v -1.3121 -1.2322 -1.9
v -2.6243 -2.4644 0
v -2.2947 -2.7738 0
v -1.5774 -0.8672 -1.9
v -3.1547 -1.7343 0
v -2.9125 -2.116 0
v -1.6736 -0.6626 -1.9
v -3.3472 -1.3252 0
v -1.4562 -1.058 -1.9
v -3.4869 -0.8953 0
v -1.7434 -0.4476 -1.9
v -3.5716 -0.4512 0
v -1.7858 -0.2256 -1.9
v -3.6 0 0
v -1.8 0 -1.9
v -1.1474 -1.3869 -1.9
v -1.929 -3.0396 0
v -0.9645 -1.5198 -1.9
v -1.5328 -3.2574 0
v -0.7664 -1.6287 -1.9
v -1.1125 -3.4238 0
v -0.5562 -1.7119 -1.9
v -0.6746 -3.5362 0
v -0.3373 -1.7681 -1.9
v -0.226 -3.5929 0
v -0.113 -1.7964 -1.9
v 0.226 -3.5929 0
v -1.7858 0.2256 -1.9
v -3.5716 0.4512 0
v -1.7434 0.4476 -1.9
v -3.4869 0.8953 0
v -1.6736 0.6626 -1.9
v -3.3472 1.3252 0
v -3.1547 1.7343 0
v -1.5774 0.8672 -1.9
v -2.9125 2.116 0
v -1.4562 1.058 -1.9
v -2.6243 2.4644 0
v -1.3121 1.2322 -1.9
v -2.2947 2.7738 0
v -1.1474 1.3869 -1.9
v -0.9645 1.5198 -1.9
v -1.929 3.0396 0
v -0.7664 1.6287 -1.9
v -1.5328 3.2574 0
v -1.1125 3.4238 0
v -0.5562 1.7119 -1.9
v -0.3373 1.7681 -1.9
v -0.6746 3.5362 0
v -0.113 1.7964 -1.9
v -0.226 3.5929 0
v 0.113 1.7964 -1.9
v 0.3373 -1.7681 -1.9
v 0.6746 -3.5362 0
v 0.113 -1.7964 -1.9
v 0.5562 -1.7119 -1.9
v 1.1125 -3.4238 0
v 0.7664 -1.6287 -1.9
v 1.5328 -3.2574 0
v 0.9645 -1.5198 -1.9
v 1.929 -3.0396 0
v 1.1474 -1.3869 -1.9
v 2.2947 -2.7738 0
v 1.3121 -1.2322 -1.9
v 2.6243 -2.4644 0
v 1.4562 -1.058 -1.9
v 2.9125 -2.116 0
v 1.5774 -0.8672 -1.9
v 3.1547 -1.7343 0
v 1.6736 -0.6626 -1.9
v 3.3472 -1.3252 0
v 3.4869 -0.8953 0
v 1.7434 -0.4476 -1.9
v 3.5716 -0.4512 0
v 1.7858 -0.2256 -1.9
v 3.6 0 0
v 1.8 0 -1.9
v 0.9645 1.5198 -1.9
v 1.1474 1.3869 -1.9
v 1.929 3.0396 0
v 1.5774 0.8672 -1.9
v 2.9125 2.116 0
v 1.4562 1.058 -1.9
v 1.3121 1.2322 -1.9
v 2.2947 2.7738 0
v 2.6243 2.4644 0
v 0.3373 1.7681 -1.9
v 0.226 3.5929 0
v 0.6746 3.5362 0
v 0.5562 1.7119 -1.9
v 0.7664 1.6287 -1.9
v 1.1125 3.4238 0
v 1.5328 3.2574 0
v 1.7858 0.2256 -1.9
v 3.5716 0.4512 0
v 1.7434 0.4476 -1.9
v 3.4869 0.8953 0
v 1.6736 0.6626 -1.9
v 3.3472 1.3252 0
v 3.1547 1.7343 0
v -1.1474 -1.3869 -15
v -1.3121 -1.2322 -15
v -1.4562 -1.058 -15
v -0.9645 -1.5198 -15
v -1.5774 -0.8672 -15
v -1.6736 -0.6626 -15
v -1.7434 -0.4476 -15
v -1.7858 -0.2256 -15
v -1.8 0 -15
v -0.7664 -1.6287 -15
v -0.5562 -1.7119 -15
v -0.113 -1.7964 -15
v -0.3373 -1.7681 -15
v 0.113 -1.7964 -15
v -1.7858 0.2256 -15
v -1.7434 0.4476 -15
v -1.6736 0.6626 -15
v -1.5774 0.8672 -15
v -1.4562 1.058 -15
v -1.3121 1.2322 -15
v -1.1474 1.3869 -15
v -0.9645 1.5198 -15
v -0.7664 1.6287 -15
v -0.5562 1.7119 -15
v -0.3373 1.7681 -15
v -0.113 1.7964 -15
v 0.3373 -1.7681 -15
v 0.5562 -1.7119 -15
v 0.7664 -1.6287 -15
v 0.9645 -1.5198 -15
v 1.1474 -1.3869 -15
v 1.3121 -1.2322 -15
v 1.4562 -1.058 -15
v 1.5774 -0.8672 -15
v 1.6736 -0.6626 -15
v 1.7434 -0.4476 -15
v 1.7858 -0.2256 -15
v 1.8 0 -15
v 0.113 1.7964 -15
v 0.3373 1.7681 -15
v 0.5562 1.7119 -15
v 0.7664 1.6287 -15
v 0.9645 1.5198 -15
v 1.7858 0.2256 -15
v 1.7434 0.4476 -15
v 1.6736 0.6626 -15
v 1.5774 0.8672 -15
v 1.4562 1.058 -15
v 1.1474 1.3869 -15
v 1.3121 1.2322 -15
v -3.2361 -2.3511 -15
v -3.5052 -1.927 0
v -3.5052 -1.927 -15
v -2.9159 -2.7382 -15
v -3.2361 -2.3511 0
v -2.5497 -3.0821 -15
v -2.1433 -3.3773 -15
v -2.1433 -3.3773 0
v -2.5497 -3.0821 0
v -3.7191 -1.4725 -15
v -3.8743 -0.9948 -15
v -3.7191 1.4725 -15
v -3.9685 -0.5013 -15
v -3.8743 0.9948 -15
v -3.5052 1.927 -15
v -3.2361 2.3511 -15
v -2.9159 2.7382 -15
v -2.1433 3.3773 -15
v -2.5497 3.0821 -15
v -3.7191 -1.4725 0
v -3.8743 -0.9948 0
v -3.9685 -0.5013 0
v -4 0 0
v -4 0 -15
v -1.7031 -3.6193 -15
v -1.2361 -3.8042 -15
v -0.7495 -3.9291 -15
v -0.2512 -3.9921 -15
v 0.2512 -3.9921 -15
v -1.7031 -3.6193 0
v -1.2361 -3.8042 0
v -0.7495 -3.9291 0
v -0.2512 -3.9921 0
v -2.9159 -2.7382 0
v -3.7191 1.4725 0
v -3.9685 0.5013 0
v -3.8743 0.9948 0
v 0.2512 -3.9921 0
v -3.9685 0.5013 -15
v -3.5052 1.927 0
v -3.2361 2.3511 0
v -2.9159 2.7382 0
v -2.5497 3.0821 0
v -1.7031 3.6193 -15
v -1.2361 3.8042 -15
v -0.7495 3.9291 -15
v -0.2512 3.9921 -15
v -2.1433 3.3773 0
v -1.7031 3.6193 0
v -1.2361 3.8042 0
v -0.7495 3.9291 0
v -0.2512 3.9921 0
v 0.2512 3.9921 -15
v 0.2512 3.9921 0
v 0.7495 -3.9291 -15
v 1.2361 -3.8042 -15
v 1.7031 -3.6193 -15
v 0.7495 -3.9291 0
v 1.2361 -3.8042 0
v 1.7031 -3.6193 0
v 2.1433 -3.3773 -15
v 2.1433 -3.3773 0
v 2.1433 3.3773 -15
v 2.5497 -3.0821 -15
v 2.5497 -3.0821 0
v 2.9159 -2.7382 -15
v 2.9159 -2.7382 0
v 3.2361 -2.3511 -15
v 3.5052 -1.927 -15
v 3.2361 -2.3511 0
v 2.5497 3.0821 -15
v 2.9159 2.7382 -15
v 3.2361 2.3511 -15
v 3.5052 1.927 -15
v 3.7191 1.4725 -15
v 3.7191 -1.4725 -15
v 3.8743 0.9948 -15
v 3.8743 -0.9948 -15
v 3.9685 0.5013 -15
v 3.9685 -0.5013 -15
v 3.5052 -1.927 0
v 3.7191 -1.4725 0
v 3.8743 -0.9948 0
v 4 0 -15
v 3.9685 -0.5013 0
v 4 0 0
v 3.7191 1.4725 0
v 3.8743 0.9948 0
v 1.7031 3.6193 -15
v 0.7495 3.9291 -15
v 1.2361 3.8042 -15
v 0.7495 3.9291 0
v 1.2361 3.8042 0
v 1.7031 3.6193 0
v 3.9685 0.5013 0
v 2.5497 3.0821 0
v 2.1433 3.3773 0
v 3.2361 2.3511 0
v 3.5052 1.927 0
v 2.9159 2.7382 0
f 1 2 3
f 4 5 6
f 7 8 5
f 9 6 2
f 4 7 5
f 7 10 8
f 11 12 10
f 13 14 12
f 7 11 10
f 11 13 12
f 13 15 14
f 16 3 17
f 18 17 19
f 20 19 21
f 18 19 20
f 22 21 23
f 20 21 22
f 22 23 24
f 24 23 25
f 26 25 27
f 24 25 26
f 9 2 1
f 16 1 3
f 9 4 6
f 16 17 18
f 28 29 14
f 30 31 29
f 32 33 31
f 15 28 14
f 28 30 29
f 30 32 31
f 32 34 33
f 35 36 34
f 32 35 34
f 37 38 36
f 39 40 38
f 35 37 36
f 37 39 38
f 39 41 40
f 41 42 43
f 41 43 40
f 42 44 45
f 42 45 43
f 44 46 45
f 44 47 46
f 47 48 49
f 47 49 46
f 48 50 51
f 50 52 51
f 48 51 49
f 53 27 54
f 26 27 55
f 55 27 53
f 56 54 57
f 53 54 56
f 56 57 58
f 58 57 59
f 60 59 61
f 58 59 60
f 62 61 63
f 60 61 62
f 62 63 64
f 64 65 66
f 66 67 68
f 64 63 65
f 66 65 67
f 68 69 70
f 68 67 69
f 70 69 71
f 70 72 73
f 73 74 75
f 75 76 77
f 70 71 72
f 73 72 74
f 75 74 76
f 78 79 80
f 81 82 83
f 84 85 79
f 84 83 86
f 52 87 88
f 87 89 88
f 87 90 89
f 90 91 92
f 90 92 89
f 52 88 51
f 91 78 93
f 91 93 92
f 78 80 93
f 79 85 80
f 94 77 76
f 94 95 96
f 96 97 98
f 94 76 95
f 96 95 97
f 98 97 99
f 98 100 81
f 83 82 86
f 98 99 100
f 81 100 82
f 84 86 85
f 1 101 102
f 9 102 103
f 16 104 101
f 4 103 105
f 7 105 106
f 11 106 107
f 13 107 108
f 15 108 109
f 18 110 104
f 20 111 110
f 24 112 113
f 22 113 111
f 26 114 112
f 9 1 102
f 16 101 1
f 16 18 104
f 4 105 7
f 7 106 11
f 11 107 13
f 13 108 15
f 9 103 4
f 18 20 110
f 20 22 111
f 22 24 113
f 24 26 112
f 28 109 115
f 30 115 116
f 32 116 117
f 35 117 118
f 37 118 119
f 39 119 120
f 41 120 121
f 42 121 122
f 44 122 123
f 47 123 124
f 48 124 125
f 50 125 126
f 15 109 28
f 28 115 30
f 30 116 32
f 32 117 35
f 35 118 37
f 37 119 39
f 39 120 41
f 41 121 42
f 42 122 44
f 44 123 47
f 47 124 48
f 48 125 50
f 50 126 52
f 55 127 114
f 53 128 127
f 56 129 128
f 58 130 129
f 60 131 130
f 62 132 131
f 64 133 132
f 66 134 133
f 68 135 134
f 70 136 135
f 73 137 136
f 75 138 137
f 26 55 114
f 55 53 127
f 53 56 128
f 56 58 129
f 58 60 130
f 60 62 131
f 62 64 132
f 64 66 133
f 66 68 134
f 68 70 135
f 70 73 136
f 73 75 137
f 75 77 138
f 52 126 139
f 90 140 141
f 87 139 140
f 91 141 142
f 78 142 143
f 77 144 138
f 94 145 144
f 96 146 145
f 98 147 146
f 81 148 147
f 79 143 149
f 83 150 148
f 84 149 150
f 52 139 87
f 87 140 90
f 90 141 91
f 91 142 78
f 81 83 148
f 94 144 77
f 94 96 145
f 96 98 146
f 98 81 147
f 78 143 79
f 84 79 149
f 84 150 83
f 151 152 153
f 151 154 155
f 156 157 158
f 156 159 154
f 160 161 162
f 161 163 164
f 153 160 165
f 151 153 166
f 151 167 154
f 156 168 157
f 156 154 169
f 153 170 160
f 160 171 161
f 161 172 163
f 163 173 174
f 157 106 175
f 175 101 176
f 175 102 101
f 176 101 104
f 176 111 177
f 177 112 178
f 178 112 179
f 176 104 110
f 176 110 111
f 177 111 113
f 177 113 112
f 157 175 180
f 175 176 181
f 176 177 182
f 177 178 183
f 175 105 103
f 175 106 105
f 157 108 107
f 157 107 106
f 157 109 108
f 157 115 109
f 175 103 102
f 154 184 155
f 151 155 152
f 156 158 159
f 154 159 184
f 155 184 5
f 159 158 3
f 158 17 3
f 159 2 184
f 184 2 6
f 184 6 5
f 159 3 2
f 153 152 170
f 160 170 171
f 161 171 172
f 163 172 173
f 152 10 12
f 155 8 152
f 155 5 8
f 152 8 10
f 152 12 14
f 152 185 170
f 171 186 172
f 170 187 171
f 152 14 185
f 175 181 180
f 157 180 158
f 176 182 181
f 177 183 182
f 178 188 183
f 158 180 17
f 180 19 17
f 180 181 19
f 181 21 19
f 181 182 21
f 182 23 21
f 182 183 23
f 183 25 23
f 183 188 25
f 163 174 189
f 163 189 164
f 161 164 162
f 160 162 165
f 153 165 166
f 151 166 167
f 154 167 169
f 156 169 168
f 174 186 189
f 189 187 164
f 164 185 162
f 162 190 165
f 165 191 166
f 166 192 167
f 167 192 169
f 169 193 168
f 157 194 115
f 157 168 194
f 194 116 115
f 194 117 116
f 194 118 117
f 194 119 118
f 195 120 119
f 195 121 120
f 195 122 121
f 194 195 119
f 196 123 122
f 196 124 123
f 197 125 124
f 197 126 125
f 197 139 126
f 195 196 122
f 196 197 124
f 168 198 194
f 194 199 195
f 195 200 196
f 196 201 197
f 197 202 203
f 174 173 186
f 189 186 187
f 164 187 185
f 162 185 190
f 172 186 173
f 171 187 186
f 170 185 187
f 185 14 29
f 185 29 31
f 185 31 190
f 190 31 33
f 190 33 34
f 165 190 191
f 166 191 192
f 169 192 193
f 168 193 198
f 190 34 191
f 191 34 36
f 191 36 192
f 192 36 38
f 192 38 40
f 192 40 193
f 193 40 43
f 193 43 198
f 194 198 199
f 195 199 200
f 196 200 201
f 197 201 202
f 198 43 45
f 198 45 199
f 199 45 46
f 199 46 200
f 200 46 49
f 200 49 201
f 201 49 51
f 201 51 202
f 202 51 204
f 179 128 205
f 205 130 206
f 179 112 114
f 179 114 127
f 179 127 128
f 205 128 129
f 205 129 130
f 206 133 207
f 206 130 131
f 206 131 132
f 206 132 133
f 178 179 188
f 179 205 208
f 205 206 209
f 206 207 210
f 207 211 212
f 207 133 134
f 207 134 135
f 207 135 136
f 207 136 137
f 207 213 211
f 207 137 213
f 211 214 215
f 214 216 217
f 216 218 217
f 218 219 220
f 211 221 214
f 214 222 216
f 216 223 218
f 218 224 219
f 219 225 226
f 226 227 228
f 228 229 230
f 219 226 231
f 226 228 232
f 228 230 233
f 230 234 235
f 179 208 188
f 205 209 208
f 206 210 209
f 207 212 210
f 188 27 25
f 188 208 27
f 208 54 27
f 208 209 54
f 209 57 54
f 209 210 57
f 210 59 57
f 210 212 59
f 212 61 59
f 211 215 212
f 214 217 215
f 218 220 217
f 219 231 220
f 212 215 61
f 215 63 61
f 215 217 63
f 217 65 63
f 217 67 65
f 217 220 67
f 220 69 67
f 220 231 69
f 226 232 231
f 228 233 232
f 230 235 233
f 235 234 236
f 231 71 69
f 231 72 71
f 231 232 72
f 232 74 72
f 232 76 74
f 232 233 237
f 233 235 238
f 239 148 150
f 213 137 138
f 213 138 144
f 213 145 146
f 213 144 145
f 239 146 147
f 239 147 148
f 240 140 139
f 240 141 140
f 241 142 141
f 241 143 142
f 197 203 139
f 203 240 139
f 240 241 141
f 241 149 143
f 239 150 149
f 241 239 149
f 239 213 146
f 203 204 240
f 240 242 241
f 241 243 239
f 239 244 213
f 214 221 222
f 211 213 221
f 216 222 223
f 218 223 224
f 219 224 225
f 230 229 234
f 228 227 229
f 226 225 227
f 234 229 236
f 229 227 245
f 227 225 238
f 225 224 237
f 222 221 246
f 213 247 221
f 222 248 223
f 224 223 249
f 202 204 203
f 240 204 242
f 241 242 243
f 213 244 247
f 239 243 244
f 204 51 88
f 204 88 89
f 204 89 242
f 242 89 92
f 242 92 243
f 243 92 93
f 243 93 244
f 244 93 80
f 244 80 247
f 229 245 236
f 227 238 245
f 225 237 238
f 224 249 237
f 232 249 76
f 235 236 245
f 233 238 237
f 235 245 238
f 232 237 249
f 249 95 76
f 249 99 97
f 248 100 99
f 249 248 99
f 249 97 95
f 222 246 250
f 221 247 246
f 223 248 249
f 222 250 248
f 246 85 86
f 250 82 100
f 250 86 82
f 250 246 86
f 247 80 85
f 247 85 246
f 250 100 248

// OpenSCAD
$fn = 50;

difference() {
	union() {
		translate(v = [0, 0, -15.0]) {
			cylinder(h = 15, r = 4.0);
		}
	}
	union() {
		translate(v = [0, 0, 0]) {
			rotate(a = [0, 0, 0]) {
				difference() {
					union() {
						translate(v = [0, 0, -18.0]) {
							cylinder(h = 18, r = 1.5);
						}
						translate(v = [0, 0, -1.9]) {
							cylinder(h = 1.9, r1 = 1.8, r2 = 3.6);
						}
						translate(v = [0, 0, -18.0]) {
							cylinder(h = 18, r = 1.8);
						}
						translate(v = [0, 0, -18.0]) {
							cylinder(h = 18, r = 1.5);
						}
					}
					union();
				}
			}
		}
	}
}
